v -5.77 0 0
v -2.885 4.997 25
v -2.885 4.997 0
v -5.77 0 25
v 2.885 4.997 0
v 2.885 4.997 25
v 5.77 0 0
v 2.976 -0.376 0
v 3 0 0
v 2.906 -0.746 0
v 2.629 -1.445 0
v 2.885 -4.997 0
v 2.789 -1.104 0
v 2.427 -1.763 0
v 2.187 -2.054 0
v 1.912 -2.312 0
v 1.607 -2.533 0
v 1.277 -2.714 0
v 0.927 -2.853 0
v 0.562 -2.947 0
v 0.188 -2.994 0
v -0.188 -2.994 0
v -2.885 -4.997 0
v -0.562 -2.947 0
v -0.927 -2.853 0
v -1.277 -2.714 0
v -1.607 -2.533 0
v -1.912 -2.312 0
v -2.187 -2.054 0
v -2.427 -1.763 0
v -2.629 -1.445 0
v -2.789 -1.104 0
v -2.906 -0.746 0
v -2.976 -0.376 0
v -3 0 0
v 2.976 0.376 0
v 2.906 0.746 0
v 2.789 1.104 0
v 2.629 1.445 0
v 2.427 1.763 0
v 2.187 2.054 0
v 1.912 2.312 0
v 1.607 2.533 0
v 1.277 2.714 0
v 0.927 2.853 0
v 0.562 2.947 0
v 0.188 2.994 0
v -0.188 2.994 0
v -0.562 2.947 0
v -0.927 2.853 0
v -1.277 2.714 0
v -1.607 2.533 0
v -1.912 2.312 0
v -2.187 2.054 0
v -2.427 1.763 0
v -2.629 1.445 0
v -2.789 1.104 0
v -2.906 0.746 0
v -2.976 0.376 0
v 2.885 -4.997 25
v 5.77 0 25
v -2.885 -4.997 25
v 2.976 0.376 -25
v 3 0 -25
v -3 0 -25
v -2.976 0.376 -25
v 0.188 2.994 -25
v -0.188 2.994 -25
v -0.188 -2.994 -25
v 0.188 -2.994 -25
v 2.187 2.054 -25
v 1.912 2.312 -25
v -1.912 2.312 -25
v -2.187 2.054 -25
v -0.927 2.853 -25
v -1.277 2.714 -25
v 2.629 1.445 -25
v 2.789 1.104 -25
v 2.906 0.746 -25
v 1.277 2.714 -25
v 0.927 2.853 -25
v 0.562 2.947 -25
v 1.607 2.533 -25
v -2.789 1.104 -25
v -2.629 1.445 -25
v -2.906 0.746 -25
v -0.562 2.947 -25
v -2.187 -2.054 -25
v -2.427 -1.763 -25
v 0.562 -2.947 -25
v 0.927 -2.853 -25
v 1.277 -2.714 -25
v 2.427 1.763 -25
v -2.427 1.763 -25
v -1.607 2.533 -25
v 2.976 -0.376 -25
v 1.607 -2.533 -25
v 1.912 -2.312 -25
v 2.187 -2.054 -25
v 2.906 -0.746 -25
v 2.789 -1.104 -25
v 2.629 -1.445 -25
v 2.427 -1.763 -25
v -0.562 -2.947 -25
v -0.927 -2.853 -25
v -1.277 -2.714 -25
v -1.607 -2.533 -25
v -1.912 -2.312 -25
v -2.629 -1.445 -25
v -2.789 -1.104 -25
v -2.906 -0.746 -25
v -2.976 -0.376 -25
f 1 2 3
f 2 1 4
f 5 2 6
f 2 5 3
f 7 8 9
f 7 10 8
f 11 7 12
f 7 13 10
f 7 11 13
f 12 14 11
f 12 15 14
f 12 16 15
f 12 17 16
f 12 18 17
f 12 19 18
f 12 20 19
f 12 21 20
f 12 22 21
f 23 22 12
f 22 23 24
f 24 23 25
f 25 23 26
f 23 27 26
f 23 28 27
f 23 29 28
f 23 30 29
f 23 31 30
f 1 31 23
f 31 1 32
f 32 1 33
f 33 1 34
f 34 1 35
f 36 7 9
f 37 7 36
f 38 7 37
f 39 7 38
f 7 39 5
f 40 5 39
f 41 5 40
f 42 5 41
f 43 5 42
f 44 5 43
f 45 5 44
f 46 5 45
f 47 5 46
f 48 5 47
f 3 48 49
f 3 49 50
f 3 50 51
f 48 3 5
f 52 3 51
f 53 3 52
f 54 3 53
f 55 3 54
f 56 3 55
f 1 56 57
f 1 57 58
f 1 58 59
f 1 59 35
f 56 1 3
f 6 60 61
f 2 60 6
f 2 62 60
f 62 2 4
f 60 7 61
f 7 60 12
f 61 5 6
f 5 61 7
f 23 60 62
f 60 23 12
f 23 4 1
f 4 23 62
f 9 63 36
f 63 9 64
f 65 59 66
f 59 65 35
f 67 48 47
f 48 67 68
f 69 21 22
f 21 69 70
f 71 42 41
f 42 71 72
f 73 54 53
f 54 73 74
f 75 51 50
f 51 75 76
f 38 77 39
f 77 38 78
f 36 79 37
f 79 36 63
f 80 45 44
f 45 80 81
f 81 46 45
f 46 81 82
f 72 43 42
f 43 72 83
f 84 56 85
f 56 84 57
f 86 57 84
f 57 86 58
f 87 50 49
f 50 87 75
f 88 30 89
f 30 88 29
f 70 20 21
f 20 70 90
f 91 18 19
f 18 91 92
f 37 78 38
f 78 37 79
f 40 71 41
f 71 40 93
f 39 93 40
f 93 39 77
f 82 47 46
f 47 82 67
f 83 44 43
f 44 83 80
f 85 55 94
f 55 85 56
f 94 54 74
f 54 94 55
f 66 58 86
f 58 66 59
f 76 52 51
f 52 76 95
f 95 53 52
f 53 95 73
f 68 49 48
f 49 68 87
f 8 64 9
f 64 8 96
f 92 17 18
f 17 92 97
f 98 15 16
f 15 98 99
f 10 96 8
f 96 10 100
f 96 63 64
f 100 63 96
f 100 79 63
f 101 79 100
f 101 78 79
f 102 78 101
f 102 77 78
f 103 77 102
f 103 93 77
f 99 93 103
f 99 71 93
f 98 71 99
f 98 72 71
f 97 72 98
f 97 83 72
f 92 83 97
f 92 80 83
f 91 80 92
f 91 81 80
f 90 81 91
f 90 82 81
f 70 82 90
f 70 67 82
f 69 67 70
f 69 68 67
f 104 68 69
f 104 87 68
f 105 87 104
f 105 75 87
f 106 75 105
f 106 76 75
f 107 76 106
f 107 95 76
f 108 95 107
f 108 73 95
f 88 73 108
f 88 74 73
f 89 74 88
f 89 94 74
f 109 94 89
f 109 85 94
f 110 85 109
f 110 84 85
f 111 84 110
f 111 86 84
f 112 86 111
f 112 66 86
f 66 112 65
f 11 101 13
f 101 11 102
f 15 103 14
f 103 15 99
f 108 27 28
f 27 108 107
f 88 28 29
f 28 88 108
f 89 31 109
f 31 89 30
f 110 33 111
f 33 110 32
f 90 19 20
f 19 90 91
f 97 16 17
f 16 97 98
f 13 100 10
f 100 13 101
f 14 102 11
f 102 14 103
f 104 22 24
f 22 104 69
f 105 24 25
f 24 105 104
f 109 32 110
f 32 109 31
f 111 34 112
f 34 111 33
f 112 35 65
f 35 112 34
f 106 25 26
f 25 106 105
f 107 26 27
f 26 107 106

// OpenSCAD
$fn = 50;


difference() {
	union() {
		linear_extrude(height = 25) {
			polygon(points = [[5.7700000000, 0.0000000000], [2.8850000000, 4.9969665798], [-2.8850000000, 4.9969665798], [-5.7700000000, 0.0000000000], [-2.8850000000, -4.9969665798], [2.8850000000, -4.9969665798]]);
		}
		translate(v = [0, 0, -25]) {
			cylinder(h = 25, r = 3.0000000000);
		}
	}
	union();
}
